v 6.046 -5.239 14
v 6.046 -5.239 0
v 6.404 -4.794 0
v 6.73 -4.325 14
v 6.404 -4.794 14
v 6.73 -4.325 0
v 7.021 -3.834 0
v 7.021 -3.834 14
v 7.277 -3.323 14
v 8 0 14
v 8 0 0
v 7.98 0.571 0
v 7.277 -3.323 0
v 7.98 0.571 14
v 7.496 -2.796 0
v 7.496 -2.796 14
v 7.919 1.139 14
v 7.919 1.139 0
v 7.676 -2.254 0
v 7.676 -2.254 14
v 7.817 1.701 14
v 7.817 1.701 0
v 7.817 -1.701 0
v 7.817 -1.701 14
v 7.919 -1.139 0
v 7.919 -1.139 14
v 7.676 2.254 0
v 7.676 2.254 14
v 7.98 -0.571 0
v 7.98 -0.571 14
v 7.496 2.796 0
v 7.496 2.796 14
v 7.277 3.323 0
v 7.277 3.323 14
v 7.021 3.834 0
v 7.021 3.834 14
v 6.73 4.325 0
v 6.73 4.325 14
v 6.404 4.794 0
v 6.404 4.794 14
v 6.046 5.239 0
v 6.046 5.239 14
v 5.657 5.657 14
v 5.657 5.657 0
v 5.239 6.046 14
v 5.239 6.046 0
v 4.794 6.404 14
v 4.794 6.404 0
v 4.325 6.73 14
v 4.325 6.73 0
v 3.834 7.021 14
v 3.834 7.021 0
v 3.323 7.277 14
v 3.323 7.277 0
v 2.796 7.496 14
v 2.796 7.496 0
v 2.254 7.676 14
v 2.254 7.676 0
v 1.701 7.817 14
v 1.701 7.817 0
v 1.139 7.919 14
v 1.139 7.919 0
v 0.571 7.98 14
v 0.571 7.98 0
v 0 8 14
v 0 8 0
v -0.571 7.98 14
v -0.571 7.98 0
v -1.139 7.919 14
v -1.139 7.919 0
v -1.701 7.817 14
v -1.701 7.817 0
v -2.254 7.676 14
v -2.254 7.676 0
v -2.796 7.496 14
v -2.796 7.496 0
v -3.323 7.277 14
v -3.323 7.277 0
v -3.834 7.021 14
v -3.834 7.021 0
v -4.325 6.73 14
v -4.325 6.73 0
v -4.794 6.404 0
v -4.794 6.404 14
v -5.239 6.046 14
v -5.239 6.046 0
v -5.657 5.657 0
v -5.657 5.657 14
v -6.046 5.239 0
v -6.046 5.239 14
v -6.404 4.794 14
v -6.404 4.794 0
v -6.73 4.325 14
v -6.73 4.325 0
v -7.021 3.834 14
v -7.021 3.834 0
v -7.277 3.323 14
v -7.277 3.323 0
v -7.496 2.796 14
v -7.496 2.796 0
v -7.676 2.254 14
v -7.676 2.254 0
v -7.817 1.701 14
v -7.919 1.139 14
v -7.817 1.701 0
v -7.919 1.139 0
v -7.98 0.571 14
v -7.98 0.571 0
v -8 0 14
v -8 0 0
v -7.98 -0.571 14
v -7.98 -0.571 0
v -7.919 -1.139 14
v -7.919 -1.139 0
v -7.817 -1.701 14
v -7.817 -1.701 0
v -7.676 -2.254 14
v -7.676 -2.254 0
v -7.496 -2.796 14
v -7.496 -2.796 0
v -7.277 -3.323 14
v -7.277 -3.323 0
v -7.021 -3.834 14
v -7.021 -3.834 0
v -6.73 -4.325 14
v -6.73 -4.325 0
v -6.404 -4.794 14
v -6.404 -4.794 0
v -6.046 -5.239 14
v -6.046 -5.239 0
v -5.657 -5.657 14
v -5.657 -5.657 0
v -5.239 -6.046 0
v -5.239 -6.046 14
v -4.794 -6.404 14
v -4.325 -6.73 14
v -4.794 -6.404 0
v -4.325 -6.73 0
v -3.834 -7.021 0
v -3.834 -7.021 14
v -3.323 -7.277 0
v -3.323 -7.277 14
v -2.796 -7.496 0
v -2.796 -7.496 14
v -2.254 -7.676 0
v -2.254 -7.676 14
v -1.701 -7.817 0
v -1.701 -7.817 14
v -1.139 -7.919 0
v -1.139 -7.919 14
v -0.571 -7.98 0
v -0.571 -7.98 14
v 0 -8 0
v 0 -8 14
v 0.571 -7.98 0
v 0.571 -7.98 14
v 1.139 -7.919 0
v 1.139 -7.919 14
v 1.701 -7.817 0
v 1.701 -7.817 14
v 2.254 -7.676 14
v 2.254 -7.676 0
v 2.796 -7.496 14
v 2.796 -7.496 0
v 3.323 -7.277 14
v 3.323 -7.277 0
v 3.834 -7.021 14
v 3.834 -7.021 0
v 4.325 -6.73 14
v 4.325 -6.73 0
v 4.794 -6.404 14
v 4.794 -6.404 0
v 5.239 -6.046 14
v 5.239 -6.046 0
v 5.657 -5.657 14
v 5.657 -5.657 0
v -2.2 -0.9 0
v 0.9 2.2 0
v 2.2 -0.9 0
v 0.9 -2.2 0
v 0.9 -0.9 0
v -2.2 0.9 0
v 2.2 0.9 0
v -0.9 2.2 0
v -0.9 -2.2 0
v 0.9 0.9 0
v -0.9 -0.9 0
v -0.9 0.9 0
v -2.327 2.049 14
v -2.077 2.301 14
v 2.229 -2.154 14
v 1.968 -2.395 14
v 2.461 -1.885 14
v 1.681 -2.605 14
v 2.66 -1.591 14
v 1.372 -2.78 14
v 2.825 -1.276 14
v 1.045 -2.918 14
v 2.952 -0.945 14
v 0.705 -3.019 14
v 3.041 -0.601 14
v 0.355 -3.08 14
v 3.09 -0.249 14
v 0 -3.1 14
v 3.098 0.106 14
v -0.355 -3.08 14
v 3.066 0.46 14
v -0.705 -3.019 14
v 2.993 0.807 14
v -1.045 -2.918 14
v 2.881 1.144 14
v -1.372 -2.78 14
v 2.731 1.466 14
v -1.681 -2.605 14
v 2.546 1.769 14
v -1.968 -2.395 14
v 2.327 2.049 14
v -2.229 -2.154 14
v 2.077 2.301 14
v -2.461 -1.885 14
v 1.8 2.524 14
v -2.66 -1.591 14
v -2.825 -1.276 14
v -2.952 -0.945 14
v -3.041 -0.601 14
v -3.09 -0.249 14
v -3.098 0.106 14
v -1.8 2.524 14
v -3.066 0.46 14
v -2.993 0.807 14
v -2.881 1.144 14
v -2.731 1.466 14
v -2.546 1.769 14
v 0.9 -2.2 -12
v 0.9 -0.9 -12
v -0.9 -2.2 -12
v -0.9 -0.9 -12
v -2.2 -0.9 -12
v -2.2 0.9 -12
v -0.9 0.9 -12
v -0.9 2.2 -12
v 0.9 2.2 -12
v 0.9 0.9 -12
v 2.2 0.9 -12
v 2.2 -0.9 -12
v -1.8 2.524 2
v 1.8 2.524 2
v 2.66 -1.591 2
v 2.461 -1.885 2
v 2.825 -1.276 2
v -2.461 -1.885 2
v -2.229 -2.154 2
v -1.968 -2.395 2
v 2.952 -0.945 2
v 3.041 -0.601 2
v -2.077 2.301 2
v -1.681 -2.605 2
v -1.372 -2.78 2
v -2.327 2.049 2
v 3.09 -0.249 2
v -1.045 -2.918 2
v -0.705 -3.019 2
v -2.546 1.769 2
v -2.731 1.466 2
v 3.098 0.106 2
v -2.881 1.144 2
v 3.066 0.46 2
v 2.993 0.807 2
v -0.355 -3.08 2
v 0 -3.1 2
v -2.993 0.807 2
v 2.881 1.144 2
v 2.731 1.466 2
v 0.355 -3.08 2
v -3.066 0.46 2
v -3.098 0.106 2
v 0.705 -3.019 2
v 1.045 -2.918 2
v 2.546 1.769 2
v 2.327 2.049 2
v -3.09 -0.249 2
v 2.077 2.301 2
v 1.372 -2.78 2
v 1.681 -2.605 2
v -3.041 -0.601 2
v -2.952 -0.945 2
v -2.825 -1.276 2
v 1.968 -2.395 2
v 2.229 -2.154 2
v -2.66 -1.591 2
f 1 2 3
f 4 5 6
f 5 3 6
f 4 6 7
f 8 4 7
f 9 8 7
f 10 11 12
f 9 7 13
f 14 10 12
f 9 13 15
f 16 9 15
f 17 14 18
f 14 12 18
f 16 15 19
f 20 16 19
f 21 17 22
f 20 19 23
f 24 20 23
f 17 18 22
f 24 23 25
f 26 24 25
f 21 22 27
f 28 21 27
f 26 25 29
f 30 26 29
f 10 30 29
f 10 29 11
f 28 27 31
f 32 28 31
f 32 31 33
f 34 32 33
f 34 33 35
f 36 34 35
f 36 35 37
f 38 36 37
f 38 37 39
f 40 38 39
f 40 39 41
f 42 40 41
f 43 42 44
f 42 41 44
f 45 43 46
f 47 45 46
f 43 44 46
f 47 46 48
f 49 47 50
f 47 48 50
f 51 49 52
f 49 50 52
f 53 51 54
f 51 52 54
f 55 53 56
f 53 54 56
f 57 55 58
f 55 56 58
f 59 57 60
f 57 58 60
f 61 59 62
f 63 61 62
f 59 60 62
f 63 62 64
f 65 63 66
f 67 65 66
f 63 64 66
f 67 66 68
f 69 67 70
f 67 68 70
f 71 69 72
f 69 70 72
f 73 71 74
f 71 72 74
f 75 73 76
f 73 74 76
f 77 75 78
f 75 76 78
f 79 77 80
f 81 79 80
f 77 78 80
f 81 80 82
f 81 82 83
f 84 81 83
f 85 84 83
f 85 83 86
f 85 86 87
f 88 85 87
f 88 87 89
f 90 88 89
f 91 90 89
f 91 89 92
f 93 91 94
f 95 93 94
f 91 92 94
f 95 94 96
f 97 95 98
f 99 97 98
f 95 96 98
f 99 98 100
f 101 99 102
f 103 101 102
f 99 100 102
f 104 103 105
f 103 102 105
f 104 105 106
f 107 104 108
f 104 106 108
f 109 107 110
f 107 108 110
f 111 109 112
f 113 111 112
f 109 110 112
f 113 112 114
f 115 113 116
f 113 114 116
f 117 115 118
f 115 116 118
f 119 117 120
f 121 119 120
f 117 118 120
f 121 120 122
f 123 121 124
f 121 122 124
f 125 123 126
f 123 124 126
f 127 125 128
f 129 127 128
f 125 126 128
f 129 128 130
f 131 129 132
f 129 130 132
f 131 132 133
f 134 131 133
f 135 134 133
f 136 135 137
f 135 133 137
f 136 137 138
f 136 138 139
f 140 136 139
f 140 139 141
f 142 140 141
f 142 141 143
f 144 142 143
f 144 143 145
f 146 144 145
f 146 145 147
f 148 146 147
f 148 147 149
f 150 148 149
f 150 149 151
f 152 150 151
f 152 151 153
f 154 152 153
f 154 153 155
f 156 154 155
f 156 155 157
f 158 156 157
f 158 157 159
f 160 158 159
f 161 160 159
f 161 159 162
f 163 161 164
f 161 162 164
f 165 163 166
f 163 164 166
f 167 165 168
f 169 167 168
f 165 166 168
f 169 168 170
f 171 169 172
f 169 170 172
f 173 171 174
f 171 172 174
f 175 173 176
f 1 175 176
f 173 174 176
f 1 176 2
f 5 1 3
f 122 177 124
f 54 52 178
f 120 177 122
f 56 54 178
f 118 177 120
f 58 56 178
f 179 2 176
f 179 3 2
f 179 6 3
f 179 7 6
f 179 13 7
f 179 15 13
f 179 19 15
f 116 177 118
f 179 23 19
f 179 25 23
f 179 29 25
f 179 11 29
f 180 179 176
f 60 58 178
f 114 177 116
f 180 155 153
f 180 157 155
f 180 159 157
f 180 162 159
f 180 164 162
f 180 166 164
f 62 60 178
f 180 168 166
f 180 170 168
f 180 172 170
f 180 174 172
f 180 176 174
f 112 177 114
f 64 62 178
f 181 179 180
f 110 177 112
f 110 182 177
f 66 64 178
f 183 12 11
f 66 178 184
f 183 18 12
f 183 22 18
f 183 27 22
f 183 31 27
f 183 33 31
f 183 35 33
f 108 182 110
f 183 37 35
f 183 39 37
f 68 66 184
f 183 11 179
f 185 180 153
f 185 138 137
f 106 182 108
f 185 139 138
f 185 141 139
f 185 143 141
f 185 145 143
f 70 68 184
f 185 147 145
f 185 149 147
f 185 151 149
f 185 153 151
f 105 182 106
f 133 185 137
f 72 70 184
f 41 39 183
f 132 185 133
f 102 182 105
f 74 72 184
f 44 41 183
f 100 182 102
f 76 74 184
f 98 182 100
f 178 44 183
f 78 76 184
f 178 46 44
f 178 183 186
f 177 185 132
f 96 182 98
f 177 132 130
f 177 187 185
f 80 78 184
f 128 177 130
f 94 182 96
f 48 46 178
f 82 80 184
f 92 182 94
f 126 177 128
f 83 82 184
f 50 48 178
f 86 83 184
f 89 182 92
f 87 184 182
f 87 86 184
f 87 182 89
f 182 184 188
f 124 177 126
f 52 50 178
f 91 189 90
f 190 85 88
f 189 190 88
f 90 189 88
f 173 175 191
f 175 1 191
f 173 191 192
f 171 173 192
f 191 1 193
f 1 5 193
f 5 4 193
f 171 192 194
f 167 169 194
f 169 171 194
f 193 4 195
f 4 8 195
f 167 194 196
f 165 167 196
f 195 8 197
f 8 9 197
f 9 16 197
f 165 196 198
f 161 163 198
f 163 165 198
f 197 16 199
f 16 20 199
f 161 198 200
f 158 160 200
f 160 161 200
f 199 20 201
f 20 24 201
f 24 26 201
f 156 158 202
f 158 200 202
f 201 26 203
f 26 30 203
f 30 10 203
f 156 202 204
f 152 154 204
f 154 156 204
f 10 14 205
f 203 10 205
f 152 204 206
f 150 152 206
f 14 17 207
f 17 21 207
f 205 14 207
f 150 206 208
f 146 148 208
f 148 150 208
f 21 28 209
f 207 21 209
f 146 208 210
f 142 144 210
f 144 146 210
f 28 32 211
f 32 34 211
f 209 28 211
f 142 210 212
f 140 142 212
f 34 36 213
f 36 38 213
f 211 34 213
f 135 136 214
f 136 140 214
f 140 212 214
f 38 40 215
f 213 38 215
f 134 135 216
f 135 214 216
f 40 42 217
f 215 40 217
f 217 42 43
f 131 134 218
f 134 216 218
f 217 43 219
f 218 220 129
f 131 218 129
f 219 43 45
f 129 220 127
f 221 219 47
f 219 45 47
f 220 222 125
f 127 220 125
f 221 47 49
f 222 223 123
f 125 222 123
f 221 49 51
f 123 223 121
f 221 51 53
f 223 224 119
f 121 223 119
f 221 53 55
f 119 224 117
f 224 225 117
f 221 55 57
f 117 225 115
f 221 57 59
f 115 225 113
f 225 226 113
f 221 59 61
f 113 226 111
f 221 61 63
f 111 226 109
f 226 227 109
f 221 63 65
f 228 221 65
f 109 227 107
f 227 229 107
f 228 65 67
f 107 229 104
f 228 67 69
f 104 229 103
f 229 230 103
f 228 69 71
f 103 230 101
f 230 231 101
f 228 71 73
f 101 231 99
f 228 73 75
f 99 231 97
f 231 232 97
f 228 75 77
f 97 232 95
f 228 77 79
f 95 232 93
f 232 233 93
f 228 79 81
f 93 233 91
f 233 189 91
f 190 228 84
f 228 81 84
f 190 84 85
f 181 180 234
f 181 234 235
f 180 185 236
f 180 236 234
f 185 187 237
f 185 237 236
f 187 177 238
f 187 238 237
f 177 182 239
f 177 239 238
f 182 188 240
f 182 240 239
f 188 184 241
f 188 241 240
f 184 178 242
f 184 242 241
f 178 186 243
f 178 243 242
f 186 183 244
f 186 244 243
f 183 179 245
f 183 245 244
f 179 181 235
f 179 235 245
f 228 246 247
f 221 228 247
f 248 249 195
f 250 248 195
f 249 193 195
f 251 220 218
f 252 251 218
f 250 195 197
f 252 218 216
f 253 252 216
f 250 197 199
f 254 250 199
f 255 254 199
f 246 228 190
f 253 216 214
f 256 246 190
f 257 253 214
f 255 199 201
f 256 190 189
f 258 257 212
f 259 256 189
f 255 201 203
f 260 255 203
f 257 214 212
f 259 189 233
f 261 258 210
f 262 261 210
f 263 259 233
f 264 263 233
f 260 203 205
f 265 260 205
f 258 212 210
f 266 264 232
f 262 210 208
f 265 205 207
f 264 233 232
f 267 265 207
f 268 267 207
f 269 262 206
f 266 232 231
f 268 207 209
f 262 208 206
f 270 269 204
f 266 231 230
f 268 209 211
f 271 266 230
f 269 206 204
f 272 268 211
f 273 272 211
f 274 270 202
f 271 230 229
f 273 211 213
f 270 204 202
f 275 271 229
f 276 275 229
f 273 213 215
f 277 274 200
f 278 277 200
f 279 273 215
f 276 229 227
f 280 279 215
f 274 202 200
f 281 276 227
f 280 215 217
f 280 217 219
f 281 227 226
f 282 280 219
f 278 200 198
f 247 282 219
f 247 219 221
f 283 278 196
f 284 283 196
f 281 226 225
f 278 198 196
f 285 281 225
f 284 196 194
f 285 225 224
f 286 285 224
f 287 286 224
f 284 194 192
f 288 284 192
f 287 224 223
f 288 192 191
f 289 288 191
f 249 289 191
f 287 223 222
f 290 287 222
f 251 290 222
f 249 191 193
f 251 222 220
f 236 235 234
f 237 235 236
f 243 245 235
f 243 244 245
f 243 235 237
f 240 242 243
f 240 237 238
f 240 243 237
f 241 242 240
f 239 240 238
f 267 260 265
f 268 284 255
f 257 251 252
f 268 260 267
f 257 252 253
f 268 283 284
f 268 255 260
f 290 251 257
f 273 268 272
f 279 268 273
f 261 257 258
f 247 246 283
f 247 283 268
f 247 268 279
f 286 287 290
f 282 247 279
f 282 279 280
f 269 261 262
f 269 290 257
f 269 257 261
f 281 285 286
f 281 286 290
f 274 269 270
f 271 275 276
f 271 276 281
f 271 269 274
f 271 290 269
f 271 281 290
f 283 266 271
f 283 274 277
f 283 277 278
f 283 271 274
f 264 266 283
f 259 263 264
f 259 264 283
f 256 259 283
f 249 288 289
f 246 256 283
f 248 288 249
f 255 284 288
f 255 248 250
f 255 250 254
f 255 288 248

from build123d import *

# Parameters (mm, degrees)
SKETCH_R     = 8
PAD_DEPTH    = 14
POCKET_DEPTH = 12
PAD001_DEPTH = 12


with BuildPart() as part:
    # Sketch → Pad (new body)
    with BuildSketch(Plane.XY):
        Circle(SKETCH_R)
    extrude(amount=PAD_DEPTH)

    # Sketch001 → Pocket (cut)
    with BuildSketch(Plane.XY.offset(14)):
        with BuildLine():
            Line((-1.8, 2.523886), (1.8, 2.523886))
            ThreePointArc((-1.8, 2.523886), (0, -3.1), (1.8, 2.523886))
        make_face()
    extrude(amount=-POCKET_DEPTH, mode=Mode.SUBTRACT)

    # Sketch002 → Pad001 (new body)
    with BuildSketch(Plane(origin=(0, 0, 0), x_dir=(1, 0, 0), z_dir=(0, 0, -1))):
        Polygon((-0.9, 2.2), (0.9, 2.2), (0.9, 0.9), (2.2, 0.9), (2.2, -0.9), (0.9, -0.9), (0.9, -2.2), (-0.9, -2.2), (-0.9, -0.9), (-2.2, -0.9), (-2.2, 0.9), (-0.9, 0.9), align=None)
    extrude(amount=PAD001_DEPTH)


solid = part.part
